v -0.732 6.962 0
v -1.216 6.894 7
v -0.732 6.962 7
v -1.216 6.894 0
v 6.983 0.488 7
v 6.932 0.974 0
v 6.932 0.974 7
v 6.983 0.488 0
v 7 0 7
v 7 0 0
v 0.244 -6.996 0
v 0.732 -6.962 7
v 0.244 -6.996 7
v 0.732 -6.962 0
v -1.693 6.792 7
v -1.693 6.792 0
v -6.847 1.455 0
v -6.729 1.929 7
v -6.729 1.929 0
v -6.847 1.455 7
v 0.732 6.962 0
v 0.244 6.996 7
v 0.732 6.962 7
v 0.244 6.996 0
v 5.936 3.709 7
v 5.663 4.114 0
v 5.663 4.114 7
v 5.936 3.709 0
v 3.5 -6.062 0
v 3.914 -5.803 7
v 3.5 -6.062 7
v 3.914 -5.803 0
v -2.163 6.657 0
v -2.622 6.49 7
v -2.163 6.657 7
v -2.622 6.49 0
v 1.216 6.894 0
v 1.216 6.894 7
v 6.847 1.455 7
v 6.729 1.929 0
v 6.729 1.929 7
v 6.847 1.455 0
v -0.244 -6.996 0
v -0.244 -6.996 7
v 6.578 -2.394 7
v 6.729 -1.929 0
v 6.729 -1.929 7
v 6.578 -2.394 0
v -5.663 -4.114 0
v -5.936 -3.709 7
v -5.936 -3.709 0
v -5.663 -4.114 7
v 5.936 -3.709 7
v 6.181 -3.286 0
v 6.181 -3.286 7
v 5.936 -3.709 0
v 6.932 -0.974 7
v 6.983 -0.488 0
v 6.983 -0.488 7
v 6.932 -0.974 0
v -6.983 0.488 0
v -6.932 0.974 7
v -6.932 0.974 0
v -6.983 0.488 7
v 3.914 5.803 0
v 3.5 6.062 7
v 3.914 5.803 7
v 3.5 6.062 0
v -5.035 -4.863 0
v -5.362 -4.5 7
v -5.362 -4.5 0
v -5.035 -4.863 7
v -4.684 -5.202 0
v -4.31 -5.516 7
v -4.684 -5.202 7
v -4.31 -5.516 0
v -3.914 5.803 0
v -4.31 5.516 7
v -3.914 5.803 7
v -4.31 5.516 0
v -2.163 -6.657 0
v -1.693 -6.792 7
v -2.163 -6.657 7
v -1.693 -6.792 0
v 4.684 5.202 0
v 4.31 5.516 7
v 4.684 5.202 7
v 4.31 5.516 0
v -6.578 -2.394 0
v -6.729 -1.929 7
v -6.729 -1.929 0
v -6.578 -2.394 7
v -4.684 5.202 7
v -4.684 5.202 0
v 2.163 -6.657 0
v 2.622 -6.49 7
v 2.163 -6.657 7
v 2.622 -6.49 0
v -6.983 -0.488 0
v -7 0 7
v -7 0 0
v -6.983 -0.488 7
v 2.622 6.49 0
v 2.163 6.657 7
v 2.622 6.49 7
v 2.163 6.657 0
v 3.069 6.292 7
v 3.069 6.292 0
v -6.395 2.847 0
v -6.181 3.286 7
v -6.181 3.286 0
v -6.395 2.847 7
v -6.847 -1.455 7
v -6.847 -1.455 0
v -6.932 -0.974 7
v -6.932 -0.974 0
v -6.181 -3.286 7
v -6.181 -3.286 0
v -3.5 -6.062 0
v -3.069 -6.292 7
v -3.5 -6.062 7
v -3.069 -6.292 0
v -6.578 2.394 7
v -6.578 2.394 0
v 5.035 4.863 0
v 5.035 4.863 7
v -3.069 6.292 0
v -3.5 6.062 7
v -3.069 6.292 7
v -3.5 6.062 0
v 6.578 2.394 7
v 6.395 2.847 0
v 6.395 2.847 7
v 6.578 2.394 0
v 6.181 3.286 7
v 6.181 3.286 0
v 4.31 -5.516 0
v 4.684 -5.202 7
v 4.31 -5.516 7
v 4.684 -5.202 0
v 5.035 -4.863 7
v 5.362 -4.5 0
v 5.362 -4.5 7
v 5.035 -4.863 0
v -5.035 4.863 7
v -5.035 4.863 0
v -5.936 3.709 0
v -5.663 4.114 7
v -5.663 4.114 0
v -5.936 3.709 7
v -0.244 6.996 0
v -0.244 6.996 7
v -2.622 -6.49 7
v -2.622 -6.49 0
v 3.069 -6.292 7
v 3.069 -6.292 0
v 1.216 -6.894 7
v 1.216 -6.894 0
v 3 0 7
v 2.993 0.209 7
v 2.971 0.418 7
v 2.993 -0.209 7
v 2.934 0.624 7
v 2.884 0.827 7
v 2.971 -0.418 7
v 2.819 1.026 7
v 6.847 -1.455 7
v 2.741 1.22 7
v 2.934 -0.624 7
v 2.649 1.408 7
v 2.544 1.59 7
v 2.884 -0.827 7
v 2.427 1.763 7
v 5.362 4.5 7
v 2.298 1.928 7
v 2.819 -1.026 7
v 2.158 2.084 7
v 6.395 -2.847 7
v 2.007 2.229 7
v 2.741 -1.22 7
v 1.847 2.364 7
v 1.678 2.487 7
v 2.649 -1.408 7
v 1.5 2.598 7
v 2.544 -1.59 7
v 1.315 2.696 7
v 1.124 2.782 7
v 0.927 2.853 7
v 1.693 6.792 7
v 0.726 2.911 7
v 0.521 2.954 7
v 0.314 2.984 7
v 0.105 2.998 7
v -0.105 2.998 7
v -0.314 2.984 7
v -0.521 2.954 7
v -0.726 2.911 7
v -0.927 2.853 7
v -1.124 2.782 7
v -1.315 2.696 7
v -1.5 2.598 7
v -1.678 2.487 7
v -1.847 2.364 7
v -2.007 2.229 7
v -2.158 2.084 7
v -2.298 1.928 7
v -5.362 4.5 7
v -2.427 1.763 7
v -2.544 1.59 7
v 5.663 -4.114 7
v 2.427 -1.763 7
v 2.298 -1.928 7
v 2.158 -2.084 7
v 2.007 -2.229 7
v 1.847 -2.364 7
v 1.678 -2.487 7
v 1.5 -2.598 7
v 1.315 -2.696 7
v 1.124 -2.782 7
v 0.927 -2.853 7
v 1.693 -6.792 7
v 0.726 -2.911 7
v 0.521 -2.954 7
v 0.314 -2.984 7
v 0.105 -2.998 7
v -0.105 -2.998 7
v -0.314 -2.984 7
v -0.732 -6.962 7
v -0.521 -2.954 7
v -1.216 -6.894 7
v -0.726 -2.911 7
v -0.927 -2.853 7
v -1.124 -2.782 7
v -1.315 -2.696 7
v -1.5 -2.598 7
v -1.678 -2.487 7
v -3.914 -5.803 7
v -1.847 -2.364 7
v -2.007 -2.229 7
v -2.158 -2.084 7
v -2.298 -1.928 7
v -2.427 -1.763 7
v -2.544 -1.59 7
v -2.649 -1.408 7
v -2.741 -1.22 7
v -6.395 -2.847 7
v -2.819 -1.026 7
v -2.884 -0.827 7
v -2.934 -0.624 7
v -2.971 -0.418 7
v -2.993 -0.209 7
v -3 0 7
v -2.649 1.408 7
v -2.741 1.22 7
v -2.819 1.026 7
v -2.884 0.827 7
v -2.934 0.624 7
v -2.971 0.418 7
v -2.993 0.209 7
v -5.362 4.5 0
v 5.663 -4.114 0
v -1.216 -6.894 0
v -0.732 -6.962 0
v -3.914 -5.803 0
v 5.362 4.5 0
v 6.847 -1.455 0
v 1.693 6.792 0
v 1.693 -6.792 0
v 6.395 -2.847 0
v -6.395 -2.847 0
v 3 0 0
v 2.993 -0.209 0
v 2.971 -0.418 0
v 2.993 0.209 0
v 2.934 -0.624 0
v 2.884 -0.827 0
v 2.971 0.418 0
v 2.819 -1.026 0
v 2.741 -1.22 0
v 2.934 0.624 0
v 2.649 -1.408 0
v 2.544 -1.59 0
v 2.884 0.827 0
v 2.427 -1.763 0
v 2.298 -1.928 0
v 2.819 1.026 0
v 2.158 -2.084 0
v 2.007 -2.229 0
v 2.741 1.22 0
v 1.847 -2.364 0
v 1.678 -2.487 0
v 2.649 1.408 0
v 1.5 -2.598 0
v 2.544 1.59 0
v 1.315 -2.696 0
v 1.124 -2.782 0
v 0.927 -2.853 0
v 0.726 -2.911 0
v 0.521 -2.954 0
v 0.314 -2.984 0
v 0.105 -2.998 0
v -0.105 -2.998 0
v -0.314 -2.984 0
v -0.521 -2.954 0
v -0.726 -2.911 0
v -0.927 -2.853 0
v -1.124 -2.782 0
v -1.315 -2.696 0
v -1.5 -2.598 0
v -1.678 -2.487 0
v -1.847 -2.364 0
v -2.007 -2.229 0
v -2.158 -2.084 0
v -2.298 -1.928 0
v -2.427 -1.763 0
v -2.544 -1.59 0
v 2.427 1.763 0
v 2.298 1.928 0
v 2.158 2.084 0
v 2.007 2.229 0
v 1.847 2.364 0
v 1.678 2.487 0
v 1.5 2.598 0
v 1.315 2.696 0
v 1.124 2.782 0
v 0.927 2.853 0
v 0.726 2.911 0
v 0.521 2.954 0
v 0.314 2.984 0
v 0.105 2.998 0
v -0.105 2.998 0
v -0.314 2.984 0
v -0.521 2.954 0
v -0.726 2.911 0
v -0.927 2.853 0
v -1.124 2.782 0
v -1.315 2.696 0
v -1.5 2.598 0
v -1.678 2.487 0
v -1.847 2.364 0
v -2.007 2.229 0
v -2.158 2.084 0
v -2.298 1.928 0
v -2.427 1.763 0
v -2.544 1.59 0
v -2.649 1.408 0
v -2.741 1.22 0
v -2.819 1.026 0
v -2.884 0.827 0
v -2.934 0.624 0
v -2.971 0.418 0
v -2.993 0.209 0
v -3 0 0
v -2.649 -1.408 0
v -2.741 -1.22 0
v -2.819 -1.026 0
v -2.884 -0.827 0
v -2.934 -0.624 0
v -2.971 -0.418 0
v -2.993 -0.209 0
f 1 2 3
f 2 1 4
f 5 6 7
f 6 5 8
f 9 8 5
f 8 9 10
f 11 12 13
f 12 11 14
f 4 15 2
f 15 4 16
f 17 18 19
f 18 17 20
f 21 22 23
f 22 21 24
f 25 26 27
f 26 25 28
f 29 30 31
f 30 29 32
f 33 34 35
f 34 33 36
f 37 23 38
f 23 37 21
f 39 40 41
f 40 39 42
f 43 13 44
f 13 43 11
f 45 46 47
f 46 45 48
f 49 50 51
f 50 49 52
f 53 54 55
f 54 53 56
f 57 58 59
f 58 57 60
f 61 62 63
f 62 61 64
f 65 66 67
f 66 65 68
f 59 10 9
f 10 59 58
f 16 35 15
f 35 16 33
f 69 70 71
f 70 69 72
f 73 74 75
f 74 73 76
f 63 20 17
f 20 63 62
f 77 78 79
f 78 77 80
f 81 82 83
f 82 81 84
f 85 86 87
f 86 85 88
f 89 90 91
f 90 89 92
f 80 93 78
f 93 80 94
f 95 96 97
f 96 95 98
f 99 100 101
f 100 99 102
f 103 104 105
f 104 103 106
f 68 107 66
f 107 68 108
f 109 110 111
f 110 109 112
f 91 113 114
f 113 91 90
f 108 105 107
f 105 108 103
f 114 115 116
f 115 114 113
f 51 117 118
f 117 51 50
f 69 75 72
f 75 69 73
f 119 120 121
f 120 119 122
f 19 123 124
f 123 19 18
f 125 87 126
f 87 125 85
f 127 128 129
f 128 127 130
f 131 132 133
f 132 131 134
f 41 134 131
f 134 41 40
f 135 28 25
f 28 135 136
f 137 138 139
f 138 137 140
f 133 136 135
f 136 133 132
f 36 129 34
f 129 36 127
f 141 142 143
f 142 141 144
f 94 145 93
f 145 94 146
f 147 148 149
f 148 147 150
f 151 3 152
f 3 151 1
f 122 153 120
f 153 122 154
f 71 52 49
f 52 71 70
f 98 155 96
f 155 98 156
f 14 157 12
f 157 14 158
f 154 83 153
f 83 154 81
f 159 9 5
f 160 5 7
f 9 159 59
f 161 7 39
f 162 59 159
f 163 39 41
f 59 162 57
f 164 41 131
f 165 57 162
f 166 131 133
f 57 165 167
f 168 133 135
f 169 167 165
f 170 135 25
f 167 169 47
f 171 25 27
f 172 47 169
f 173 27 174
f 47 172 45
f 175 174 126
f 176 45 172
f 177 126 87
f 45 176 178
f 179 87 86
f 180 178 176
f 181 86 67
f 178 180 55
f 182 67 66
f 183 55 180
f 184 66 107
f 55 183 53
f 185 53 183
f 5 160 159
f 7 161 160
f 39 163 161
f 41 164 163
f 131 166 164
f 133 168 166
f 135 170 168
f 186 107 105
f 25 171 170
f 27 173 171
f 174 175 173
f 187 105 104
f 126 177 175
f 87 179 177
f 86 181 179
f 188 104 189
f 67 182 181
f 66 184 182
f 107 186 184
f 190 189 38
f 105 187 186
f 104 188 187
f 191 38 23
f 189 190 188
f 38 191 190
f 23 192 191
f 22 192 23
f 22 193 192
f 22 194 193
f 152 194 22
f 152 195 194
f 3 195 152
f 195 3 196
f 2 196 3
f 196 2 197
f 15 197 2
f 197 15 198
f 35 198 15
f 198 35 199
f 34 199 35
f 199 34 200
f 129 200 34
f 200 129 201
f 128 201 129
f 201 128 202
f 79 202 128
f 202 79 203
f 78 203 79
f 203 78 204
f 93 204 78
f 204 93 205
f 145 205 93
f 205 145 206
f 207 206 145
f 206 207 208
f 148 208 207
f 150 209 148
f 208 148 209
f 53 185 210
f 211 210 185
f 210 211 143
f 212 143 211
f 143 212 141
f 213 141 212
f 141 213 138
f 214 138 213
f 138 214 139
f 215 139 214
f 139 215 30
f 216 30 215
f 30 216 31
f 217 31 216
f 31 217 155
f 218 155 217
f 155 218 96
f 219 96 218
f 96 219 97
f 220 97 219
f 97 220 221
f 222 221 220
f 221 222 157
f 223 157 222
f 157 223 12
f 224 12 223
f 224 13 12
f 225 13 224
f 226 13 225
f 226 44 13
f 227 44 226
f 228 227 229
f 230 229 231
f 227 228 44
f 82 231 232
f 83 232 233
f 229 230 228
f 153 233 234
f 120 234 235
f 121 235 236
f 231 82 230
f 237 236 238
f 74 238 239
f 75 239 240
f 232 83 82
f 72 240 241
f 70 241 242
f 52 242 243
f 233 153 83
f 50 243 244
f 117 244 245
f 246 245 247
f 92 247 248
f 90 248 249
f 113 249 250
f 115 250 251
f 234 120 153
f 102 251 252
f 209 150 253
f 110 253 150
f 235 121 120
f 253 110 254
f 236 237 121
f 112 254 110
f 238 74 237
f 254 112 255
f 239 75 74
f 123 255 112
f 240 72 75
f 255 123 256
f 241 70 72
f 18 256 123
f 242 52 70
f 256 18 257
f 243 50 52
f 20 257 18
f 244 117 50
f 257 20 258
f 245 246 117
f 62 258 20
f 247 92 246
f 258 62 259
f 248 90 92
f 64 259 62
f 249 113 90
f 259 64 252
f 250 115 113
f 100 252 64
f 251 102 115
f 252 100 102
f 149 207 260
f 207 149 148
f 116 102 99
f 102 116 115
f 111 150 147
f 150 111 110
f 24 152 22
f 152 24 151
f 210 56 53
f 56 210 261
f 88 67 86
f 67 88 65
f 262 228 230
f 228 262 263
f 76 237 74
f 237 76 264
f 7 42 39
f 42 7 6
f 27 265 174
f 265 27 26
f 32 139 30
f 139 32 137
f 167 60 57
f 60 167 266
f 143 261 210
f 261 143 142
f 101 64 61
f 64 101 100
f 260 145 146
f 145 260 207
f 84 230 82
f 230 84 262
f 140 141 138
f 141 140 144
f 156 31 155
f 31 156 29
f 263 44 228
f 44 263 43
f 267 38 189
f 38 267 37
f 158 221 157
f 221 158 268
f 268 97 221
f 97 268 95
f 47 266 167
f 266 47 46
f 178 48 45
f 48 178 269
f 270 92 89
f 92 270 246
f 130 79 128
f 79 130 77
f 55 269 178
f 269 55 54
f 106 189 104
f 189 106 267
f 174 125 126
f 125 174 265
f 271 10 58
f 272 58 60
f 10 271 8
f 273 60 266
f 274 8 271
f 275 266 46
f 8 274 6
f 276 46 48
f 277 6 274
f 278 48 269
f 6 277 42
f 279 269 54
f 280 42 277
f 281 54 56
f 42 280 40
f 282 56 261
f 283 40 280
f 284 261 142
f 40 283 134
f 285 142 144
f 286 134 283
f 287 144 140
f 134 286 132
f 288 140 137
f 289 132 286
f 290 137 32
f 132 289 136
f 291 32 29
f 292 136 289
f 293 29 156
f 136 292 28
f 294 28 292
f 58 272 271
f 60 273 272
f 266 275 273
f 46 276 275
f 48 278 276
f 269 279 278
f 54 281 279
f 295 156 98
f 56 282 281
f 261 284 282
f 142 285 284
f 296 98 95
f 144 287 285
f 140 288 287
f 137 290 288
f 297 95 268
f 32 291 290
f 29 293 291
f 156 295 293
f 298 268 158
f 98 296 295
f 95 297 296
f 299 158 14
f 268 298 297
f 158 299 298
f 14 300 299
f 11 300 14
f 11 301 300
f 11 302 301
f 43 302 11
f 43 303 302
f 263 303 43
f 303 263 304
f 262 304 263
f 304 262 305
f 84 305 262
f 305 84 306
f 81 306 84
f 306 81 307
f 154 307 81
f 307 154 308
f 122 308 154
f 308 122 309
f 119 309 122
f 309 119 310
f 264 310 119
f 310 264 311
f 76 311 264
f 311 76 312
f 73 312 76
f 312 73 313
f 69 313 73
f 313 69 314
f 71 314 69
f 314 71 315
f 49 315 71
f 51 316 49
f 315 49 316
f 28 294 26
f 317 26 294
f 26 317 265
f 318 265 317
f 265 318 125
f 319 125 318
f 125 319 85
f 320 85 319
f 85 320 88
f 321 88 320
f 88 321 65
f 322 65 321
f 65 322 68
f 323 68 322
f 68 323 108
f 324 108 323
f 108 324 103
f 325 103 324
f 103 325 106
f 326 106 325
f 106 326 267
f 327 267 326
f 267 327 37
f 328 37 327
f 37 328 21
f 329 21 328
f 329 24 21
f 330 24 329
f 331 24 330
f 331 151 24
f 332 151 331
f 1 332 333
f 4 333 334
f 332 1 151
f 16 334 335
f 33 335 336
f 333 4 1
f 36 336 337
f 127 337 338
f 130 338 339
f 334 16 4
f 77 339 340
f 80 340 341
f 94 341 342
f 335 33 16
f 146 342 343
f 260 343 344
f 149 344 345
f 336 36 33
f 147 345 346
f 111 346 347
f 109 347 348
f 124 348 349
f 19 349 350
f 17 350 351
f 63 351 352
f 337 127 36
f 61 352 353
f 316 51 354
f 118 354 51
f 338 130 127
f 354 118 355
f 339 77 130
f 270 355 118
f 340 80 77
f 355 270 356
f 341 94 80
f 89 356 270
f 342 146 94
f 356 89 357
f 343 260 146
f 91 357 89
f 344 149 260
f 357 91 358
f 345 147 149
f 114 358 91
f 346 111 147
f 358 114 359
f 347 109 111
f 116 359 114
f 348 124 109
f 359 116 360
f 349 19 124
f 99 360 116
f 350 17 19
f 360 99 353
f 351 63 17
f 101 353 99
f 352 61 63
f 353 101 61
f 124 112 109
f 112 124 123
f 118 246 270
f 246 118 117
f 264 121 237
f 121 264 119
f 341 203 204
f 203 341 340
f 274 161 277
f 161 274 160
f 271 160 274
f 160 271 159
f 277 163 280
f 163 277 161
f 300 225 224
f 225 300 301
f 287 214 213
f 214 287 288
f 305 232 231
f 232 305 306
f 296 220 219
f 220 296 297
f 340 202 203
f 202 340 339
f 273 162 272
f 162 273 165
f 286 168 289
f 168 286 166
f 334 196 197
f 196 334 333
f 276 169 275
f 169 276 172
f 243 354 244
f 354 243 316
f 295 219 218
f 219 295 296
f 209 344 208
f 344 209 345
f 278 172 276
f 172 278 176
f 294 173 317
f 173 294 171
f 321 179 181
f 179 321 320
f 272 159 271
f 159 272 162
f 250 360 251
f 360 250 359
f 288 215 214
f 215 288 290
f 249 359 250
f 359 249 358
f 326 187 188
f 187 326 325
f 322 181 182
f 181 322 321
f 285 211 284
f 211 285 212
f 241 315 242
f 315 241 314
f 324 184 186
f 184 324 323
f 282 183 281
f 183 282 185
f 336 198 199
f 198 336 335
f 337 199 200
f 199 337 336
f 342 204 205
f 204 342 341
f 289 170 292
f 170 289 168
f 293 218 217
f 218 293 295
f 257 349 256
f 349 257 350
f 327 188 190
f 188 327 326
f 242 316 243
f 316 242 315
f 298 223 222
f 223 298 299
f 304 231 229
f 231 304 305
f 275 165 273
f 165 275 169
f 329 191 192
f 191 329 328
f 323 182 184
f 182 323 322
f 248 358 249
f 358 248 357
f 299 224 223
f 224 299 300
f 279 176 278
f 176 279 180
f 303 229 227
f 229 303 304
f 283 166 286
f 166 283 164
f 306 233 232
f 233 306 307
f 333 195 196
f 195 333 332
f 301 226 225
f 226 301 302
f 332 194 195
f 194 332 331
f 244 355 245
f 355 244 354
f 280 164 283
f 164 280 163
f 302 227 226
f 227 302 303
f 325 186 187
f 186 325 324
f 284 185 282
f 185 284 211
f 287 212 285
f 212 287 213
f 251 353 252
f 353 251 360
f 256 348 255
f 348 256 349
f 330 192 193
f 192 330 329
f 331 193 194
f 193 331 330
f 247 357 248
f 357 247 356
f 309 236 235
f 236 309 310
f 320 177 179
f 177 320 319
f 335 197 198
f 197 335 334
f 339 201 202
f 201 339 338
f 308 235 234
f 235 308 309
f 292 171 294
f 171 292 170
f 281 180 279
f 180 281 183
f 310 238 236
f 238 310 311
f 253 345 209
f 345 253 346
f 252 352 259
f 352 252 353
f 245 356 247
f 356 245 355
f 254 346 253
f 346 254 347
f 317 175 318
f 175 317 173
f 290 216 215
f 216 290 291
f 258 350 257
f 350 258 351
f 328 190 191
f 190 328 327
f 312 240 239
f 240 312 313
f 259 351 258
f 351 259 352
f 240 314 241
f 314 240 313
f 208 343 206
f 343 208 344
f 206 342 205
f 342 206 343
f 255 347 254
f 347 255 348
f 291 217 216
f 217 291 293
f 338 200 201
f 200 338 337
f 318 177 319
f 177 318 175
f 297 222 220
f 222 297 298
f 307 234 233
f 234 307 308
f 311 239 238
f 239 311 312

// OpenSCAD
$fn=90;

difference() {
    cylinder(d=14,7);
    translate([0,0,-1])cylinder(d=6,10);
}


        
